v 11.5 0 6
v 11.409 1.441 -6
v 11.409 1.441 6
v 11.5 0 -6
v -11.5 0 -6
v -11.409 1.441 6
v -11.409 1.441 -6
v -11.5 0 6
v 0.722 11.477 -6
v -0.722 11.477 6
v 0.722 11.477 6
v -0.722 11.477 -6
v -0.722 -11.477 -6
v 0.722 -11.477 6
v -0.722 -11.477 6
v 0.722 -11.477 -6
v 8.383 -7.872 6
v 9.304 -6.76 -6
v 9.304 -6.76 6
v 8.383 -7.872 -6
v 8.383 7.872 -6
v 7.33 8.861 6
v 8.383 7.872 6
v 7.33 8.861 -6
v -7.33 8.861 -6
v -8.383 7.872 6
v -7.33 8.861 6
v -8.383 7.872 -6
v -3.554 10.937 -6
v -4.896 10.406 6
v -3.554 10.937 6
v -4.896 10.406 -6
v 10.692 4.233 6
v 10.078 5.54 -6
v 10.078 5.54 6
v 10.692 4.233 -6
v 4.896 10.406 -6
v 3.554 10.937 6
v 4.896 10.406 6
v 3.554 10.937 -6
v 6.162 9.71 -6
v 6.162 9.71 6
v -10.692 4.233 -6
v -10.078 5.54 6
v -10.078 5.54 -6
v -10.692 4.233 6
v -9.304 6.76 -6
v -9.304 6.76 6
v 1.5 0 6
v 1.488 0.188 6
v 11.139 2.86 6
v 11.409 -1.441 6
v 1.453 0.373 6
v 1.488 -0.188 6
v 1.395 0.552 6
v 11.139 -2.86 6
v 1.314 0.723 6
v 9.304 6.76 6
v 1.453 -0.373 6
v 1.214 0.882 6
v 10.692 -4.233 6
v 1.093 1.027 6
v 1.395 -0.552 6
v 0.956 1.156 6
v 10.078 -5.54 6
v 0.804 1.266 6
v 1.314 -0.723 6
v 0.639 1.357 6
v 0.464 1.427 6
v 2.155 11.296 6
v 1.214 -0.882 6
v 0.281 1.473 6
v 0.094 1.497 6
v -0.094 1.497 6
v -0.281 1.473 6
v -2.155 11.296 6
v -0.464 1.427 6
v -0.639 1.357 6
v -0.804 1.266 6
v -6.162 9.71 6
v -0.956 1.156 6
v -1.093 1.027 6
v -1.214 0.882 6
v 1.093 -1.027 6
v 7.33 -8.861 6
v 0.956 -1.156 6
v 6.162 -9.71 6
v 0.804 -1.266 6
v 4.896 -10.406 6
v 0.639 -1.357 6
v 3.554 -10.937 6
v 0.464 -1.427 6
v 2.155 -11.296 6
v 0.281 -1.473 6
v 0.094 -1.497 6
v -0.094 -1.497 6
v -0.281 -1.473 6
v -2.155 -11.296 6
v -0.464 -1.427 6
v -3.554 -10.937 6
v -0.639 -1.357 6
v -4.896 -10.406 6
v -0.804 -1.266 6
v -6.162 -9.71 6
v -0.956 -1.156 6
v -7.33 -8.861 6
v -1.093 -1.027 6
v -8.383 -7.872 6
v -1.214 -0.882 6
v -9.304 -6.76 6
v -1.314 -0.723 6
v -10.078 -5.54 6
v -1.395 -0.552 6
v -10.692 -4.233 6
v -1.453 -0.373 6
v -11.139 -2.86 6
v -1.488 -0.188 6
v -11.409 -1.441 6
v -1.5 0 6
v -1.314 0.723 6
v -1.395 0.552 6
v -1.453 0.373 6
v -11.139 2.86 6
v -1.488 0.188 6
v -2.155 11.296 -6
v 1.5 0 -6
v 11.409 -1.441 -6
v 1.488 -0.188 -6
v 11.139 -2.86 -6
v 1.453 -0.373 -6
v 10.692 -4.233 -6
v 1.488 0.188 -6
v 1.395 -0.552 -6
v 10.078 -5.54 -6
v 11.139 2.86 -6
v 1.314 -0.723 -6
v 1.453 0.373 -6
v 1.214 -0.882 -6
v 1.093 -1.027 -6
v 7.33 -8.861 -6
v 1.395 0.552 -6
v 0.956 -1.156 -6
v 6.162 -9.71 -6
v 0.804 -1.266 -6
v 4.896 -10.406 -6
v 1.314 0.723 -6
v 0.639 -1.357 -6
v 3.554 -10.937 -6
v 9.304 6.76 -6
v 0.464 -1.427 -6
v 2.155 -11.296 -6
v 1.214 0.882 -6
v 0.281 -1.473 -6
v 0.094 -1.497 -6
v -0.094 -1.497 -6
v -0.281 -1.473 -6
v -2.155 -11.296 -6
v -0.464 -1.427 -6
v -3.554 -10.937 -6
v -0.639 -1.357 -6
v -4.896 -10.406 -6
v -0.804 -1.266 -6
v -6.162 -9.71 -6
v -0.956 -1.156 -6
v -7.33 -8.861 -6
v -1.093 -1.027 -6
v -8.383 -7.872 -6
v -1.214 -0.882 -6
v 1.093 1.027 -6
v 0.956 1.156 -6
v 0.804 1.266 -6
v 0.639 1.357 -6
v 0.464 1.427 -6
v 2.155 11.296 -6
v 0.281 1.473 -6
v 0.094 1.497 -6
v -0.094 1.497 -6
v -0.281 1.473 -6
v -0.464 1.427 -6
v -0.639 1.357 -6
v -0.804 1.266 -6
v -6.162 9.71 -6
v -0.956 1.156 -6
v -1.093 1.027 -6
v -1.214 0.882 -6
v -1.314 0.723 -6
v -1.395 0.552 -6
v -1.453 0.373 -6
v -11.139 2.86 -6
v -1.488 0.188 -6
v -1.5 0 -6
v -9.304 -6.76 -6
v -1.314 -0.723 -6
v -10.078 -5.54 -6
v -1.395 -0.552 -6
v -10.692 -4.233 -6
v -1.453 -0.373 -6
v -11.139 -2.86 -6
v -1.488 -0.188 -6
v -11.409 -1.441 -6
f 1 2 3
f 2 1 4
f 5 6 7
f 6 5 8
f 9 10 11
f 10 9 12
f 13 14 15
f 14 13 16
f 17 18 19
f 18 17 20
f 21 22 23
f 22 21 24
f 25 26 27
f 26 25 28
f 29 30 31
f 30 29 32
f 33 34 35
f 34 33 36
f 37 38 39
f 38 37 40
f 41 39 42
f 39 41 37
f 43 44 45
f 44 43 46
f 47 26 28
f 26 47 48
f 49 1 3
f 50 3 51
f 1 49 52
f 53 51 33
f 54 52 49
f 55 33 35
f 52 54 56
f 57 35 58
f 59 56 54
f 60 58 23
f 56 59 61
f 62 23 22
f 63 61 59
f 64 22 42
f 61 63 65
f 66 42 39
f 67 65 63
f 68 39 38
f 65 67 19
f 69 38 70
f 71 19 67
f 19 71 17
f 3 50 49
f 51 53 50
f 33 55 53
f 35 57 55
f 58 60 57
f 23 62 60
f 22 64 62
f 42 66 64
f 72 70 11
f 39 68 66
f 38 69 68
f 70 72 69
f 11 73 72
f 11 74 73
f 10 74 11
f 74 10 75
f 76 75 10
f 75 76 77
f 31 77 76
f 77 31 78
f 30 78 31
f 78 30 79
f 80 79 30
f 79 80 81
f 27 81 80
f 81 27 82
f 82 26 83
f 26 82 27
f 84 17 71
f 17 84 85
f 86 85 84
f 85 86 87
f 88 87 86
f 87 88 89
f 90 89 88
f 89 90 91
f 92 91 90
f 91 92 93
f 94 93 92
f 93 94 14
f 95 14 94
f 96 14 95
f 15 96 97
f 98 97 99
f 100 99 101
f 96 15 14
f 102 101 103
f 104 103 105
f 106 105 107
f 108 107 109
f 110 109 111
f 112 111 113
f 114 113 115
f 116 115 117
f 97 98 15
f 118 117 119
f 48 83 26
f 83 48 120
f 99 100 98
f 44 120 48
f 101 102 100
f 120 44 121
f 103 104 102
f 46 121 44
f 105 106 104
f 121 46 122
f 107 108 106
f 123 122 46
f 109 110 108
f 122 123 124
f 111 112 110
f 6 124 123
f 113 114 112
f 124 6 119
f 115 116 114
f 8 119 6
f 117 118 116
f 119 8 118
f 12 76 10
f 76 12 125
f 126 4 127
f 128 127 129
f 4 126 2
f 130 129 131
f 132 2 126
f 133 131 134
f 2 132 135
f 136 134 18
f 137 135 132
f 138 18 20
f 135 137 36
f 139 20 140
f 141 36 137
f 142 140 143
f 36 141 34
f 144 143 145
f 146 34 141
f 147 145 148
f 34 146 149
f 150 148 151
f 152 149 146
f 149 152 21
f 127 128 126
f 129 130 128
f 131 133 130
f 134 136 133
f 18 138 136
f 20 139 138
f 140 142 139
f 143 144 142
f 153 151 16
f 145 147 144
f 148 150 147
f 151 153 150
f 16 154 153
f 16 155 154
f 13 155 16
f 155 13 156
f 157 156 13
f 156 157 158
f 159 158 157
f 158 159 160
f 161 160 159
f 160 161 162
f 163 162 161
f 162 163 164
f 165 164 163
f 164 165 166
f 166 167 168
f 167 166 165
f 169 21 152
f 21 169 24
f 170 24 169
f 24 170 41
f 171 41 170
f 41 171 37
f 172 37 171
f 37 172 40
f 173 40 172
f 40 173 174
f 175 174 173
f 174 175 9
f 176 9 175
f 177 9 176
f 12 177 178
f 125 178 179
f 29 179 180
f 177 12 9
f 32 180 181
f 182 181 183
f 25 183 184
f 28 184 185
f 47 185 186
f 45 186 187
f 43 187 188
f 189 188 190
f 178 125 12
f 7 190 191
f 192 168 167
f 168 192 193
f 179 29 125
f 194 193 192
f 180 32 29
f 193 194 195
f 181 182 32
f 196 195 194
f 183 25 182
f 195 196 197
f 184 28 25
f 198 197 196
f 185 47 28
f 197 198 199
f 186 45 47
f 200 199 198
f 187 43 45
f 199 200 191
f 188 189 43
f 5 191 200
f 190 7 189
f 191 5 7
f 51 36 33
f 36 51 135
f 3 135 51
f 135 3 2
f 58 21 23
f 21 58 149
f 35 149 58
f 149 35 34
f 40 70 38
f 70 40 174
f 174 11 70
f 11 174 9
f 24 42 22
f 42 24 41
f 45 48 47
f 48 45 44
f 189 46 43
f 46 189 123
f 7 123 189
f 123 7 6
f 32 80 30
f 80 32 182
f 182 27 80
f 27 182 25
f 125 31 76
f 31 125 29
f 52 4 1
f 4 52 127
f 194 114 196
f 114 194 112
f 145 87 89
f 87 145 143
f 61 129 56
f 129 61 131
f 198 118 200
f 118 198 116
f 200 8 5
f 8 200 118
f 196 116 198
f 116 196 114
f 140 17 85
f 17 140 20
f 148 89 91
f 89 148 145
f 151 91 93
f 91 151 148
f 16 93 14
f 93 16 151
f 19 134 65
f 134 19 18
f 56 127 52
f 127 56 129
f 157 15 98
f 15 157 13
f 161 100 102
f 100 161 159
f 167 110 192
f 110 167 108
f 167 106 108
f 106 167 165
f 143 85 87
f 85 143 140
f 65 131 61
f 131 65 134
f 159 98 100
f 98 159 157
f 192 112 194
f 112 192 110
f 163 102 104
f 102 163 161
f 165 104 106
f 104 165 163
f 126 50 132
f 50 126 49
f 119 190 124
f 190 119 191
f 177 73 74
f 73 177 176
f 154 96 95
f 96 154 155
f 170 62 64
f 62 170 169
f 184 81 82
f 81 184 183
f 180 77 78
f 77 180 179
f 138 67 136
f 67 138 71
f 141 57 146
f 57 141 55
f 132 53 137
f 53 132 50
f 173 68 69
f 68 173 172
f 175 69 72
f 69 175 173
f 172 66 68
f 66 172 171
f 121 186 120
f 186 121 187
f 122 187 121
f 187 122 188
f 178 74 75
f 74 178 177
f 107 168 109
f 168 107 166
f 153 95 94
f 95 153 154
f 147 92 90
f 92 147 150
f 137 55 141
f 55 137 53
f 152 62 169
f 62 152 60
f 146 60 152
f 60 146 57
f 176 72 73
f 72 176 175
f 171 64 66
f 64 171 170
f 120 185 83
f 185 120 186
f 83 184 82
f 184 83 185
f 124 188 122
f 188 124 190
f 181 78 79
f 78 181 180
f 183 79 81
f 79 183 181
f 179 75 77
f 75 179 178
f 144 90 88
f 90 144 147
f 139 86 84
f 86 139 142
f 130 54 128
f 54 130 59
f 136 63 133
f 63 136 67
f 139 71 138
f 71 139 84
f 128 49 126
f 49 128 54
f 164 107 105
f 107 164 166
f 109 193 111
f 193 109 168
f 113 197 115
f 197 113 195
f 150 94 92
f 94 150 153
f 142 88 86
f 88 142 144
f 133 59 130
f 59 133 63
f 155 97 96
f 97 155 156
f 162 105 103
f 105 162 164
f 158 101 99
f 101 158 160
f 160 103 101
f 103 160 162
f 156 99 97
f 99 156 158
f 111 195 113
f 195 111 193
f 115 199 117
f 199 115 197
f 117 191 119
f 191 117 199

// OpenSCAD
$fn = 50;


difference() {
	union() {
		translate(v = [0, 0, -6.0000000000]) {
			cylinder(h = 12, r = 11.5000000000);
		}
	}
	union() {
		translate(v = [0, 0, -100.0000000000]) {
			cylinder(h = 200, r = 1.5000000000);
		}
	}
}
